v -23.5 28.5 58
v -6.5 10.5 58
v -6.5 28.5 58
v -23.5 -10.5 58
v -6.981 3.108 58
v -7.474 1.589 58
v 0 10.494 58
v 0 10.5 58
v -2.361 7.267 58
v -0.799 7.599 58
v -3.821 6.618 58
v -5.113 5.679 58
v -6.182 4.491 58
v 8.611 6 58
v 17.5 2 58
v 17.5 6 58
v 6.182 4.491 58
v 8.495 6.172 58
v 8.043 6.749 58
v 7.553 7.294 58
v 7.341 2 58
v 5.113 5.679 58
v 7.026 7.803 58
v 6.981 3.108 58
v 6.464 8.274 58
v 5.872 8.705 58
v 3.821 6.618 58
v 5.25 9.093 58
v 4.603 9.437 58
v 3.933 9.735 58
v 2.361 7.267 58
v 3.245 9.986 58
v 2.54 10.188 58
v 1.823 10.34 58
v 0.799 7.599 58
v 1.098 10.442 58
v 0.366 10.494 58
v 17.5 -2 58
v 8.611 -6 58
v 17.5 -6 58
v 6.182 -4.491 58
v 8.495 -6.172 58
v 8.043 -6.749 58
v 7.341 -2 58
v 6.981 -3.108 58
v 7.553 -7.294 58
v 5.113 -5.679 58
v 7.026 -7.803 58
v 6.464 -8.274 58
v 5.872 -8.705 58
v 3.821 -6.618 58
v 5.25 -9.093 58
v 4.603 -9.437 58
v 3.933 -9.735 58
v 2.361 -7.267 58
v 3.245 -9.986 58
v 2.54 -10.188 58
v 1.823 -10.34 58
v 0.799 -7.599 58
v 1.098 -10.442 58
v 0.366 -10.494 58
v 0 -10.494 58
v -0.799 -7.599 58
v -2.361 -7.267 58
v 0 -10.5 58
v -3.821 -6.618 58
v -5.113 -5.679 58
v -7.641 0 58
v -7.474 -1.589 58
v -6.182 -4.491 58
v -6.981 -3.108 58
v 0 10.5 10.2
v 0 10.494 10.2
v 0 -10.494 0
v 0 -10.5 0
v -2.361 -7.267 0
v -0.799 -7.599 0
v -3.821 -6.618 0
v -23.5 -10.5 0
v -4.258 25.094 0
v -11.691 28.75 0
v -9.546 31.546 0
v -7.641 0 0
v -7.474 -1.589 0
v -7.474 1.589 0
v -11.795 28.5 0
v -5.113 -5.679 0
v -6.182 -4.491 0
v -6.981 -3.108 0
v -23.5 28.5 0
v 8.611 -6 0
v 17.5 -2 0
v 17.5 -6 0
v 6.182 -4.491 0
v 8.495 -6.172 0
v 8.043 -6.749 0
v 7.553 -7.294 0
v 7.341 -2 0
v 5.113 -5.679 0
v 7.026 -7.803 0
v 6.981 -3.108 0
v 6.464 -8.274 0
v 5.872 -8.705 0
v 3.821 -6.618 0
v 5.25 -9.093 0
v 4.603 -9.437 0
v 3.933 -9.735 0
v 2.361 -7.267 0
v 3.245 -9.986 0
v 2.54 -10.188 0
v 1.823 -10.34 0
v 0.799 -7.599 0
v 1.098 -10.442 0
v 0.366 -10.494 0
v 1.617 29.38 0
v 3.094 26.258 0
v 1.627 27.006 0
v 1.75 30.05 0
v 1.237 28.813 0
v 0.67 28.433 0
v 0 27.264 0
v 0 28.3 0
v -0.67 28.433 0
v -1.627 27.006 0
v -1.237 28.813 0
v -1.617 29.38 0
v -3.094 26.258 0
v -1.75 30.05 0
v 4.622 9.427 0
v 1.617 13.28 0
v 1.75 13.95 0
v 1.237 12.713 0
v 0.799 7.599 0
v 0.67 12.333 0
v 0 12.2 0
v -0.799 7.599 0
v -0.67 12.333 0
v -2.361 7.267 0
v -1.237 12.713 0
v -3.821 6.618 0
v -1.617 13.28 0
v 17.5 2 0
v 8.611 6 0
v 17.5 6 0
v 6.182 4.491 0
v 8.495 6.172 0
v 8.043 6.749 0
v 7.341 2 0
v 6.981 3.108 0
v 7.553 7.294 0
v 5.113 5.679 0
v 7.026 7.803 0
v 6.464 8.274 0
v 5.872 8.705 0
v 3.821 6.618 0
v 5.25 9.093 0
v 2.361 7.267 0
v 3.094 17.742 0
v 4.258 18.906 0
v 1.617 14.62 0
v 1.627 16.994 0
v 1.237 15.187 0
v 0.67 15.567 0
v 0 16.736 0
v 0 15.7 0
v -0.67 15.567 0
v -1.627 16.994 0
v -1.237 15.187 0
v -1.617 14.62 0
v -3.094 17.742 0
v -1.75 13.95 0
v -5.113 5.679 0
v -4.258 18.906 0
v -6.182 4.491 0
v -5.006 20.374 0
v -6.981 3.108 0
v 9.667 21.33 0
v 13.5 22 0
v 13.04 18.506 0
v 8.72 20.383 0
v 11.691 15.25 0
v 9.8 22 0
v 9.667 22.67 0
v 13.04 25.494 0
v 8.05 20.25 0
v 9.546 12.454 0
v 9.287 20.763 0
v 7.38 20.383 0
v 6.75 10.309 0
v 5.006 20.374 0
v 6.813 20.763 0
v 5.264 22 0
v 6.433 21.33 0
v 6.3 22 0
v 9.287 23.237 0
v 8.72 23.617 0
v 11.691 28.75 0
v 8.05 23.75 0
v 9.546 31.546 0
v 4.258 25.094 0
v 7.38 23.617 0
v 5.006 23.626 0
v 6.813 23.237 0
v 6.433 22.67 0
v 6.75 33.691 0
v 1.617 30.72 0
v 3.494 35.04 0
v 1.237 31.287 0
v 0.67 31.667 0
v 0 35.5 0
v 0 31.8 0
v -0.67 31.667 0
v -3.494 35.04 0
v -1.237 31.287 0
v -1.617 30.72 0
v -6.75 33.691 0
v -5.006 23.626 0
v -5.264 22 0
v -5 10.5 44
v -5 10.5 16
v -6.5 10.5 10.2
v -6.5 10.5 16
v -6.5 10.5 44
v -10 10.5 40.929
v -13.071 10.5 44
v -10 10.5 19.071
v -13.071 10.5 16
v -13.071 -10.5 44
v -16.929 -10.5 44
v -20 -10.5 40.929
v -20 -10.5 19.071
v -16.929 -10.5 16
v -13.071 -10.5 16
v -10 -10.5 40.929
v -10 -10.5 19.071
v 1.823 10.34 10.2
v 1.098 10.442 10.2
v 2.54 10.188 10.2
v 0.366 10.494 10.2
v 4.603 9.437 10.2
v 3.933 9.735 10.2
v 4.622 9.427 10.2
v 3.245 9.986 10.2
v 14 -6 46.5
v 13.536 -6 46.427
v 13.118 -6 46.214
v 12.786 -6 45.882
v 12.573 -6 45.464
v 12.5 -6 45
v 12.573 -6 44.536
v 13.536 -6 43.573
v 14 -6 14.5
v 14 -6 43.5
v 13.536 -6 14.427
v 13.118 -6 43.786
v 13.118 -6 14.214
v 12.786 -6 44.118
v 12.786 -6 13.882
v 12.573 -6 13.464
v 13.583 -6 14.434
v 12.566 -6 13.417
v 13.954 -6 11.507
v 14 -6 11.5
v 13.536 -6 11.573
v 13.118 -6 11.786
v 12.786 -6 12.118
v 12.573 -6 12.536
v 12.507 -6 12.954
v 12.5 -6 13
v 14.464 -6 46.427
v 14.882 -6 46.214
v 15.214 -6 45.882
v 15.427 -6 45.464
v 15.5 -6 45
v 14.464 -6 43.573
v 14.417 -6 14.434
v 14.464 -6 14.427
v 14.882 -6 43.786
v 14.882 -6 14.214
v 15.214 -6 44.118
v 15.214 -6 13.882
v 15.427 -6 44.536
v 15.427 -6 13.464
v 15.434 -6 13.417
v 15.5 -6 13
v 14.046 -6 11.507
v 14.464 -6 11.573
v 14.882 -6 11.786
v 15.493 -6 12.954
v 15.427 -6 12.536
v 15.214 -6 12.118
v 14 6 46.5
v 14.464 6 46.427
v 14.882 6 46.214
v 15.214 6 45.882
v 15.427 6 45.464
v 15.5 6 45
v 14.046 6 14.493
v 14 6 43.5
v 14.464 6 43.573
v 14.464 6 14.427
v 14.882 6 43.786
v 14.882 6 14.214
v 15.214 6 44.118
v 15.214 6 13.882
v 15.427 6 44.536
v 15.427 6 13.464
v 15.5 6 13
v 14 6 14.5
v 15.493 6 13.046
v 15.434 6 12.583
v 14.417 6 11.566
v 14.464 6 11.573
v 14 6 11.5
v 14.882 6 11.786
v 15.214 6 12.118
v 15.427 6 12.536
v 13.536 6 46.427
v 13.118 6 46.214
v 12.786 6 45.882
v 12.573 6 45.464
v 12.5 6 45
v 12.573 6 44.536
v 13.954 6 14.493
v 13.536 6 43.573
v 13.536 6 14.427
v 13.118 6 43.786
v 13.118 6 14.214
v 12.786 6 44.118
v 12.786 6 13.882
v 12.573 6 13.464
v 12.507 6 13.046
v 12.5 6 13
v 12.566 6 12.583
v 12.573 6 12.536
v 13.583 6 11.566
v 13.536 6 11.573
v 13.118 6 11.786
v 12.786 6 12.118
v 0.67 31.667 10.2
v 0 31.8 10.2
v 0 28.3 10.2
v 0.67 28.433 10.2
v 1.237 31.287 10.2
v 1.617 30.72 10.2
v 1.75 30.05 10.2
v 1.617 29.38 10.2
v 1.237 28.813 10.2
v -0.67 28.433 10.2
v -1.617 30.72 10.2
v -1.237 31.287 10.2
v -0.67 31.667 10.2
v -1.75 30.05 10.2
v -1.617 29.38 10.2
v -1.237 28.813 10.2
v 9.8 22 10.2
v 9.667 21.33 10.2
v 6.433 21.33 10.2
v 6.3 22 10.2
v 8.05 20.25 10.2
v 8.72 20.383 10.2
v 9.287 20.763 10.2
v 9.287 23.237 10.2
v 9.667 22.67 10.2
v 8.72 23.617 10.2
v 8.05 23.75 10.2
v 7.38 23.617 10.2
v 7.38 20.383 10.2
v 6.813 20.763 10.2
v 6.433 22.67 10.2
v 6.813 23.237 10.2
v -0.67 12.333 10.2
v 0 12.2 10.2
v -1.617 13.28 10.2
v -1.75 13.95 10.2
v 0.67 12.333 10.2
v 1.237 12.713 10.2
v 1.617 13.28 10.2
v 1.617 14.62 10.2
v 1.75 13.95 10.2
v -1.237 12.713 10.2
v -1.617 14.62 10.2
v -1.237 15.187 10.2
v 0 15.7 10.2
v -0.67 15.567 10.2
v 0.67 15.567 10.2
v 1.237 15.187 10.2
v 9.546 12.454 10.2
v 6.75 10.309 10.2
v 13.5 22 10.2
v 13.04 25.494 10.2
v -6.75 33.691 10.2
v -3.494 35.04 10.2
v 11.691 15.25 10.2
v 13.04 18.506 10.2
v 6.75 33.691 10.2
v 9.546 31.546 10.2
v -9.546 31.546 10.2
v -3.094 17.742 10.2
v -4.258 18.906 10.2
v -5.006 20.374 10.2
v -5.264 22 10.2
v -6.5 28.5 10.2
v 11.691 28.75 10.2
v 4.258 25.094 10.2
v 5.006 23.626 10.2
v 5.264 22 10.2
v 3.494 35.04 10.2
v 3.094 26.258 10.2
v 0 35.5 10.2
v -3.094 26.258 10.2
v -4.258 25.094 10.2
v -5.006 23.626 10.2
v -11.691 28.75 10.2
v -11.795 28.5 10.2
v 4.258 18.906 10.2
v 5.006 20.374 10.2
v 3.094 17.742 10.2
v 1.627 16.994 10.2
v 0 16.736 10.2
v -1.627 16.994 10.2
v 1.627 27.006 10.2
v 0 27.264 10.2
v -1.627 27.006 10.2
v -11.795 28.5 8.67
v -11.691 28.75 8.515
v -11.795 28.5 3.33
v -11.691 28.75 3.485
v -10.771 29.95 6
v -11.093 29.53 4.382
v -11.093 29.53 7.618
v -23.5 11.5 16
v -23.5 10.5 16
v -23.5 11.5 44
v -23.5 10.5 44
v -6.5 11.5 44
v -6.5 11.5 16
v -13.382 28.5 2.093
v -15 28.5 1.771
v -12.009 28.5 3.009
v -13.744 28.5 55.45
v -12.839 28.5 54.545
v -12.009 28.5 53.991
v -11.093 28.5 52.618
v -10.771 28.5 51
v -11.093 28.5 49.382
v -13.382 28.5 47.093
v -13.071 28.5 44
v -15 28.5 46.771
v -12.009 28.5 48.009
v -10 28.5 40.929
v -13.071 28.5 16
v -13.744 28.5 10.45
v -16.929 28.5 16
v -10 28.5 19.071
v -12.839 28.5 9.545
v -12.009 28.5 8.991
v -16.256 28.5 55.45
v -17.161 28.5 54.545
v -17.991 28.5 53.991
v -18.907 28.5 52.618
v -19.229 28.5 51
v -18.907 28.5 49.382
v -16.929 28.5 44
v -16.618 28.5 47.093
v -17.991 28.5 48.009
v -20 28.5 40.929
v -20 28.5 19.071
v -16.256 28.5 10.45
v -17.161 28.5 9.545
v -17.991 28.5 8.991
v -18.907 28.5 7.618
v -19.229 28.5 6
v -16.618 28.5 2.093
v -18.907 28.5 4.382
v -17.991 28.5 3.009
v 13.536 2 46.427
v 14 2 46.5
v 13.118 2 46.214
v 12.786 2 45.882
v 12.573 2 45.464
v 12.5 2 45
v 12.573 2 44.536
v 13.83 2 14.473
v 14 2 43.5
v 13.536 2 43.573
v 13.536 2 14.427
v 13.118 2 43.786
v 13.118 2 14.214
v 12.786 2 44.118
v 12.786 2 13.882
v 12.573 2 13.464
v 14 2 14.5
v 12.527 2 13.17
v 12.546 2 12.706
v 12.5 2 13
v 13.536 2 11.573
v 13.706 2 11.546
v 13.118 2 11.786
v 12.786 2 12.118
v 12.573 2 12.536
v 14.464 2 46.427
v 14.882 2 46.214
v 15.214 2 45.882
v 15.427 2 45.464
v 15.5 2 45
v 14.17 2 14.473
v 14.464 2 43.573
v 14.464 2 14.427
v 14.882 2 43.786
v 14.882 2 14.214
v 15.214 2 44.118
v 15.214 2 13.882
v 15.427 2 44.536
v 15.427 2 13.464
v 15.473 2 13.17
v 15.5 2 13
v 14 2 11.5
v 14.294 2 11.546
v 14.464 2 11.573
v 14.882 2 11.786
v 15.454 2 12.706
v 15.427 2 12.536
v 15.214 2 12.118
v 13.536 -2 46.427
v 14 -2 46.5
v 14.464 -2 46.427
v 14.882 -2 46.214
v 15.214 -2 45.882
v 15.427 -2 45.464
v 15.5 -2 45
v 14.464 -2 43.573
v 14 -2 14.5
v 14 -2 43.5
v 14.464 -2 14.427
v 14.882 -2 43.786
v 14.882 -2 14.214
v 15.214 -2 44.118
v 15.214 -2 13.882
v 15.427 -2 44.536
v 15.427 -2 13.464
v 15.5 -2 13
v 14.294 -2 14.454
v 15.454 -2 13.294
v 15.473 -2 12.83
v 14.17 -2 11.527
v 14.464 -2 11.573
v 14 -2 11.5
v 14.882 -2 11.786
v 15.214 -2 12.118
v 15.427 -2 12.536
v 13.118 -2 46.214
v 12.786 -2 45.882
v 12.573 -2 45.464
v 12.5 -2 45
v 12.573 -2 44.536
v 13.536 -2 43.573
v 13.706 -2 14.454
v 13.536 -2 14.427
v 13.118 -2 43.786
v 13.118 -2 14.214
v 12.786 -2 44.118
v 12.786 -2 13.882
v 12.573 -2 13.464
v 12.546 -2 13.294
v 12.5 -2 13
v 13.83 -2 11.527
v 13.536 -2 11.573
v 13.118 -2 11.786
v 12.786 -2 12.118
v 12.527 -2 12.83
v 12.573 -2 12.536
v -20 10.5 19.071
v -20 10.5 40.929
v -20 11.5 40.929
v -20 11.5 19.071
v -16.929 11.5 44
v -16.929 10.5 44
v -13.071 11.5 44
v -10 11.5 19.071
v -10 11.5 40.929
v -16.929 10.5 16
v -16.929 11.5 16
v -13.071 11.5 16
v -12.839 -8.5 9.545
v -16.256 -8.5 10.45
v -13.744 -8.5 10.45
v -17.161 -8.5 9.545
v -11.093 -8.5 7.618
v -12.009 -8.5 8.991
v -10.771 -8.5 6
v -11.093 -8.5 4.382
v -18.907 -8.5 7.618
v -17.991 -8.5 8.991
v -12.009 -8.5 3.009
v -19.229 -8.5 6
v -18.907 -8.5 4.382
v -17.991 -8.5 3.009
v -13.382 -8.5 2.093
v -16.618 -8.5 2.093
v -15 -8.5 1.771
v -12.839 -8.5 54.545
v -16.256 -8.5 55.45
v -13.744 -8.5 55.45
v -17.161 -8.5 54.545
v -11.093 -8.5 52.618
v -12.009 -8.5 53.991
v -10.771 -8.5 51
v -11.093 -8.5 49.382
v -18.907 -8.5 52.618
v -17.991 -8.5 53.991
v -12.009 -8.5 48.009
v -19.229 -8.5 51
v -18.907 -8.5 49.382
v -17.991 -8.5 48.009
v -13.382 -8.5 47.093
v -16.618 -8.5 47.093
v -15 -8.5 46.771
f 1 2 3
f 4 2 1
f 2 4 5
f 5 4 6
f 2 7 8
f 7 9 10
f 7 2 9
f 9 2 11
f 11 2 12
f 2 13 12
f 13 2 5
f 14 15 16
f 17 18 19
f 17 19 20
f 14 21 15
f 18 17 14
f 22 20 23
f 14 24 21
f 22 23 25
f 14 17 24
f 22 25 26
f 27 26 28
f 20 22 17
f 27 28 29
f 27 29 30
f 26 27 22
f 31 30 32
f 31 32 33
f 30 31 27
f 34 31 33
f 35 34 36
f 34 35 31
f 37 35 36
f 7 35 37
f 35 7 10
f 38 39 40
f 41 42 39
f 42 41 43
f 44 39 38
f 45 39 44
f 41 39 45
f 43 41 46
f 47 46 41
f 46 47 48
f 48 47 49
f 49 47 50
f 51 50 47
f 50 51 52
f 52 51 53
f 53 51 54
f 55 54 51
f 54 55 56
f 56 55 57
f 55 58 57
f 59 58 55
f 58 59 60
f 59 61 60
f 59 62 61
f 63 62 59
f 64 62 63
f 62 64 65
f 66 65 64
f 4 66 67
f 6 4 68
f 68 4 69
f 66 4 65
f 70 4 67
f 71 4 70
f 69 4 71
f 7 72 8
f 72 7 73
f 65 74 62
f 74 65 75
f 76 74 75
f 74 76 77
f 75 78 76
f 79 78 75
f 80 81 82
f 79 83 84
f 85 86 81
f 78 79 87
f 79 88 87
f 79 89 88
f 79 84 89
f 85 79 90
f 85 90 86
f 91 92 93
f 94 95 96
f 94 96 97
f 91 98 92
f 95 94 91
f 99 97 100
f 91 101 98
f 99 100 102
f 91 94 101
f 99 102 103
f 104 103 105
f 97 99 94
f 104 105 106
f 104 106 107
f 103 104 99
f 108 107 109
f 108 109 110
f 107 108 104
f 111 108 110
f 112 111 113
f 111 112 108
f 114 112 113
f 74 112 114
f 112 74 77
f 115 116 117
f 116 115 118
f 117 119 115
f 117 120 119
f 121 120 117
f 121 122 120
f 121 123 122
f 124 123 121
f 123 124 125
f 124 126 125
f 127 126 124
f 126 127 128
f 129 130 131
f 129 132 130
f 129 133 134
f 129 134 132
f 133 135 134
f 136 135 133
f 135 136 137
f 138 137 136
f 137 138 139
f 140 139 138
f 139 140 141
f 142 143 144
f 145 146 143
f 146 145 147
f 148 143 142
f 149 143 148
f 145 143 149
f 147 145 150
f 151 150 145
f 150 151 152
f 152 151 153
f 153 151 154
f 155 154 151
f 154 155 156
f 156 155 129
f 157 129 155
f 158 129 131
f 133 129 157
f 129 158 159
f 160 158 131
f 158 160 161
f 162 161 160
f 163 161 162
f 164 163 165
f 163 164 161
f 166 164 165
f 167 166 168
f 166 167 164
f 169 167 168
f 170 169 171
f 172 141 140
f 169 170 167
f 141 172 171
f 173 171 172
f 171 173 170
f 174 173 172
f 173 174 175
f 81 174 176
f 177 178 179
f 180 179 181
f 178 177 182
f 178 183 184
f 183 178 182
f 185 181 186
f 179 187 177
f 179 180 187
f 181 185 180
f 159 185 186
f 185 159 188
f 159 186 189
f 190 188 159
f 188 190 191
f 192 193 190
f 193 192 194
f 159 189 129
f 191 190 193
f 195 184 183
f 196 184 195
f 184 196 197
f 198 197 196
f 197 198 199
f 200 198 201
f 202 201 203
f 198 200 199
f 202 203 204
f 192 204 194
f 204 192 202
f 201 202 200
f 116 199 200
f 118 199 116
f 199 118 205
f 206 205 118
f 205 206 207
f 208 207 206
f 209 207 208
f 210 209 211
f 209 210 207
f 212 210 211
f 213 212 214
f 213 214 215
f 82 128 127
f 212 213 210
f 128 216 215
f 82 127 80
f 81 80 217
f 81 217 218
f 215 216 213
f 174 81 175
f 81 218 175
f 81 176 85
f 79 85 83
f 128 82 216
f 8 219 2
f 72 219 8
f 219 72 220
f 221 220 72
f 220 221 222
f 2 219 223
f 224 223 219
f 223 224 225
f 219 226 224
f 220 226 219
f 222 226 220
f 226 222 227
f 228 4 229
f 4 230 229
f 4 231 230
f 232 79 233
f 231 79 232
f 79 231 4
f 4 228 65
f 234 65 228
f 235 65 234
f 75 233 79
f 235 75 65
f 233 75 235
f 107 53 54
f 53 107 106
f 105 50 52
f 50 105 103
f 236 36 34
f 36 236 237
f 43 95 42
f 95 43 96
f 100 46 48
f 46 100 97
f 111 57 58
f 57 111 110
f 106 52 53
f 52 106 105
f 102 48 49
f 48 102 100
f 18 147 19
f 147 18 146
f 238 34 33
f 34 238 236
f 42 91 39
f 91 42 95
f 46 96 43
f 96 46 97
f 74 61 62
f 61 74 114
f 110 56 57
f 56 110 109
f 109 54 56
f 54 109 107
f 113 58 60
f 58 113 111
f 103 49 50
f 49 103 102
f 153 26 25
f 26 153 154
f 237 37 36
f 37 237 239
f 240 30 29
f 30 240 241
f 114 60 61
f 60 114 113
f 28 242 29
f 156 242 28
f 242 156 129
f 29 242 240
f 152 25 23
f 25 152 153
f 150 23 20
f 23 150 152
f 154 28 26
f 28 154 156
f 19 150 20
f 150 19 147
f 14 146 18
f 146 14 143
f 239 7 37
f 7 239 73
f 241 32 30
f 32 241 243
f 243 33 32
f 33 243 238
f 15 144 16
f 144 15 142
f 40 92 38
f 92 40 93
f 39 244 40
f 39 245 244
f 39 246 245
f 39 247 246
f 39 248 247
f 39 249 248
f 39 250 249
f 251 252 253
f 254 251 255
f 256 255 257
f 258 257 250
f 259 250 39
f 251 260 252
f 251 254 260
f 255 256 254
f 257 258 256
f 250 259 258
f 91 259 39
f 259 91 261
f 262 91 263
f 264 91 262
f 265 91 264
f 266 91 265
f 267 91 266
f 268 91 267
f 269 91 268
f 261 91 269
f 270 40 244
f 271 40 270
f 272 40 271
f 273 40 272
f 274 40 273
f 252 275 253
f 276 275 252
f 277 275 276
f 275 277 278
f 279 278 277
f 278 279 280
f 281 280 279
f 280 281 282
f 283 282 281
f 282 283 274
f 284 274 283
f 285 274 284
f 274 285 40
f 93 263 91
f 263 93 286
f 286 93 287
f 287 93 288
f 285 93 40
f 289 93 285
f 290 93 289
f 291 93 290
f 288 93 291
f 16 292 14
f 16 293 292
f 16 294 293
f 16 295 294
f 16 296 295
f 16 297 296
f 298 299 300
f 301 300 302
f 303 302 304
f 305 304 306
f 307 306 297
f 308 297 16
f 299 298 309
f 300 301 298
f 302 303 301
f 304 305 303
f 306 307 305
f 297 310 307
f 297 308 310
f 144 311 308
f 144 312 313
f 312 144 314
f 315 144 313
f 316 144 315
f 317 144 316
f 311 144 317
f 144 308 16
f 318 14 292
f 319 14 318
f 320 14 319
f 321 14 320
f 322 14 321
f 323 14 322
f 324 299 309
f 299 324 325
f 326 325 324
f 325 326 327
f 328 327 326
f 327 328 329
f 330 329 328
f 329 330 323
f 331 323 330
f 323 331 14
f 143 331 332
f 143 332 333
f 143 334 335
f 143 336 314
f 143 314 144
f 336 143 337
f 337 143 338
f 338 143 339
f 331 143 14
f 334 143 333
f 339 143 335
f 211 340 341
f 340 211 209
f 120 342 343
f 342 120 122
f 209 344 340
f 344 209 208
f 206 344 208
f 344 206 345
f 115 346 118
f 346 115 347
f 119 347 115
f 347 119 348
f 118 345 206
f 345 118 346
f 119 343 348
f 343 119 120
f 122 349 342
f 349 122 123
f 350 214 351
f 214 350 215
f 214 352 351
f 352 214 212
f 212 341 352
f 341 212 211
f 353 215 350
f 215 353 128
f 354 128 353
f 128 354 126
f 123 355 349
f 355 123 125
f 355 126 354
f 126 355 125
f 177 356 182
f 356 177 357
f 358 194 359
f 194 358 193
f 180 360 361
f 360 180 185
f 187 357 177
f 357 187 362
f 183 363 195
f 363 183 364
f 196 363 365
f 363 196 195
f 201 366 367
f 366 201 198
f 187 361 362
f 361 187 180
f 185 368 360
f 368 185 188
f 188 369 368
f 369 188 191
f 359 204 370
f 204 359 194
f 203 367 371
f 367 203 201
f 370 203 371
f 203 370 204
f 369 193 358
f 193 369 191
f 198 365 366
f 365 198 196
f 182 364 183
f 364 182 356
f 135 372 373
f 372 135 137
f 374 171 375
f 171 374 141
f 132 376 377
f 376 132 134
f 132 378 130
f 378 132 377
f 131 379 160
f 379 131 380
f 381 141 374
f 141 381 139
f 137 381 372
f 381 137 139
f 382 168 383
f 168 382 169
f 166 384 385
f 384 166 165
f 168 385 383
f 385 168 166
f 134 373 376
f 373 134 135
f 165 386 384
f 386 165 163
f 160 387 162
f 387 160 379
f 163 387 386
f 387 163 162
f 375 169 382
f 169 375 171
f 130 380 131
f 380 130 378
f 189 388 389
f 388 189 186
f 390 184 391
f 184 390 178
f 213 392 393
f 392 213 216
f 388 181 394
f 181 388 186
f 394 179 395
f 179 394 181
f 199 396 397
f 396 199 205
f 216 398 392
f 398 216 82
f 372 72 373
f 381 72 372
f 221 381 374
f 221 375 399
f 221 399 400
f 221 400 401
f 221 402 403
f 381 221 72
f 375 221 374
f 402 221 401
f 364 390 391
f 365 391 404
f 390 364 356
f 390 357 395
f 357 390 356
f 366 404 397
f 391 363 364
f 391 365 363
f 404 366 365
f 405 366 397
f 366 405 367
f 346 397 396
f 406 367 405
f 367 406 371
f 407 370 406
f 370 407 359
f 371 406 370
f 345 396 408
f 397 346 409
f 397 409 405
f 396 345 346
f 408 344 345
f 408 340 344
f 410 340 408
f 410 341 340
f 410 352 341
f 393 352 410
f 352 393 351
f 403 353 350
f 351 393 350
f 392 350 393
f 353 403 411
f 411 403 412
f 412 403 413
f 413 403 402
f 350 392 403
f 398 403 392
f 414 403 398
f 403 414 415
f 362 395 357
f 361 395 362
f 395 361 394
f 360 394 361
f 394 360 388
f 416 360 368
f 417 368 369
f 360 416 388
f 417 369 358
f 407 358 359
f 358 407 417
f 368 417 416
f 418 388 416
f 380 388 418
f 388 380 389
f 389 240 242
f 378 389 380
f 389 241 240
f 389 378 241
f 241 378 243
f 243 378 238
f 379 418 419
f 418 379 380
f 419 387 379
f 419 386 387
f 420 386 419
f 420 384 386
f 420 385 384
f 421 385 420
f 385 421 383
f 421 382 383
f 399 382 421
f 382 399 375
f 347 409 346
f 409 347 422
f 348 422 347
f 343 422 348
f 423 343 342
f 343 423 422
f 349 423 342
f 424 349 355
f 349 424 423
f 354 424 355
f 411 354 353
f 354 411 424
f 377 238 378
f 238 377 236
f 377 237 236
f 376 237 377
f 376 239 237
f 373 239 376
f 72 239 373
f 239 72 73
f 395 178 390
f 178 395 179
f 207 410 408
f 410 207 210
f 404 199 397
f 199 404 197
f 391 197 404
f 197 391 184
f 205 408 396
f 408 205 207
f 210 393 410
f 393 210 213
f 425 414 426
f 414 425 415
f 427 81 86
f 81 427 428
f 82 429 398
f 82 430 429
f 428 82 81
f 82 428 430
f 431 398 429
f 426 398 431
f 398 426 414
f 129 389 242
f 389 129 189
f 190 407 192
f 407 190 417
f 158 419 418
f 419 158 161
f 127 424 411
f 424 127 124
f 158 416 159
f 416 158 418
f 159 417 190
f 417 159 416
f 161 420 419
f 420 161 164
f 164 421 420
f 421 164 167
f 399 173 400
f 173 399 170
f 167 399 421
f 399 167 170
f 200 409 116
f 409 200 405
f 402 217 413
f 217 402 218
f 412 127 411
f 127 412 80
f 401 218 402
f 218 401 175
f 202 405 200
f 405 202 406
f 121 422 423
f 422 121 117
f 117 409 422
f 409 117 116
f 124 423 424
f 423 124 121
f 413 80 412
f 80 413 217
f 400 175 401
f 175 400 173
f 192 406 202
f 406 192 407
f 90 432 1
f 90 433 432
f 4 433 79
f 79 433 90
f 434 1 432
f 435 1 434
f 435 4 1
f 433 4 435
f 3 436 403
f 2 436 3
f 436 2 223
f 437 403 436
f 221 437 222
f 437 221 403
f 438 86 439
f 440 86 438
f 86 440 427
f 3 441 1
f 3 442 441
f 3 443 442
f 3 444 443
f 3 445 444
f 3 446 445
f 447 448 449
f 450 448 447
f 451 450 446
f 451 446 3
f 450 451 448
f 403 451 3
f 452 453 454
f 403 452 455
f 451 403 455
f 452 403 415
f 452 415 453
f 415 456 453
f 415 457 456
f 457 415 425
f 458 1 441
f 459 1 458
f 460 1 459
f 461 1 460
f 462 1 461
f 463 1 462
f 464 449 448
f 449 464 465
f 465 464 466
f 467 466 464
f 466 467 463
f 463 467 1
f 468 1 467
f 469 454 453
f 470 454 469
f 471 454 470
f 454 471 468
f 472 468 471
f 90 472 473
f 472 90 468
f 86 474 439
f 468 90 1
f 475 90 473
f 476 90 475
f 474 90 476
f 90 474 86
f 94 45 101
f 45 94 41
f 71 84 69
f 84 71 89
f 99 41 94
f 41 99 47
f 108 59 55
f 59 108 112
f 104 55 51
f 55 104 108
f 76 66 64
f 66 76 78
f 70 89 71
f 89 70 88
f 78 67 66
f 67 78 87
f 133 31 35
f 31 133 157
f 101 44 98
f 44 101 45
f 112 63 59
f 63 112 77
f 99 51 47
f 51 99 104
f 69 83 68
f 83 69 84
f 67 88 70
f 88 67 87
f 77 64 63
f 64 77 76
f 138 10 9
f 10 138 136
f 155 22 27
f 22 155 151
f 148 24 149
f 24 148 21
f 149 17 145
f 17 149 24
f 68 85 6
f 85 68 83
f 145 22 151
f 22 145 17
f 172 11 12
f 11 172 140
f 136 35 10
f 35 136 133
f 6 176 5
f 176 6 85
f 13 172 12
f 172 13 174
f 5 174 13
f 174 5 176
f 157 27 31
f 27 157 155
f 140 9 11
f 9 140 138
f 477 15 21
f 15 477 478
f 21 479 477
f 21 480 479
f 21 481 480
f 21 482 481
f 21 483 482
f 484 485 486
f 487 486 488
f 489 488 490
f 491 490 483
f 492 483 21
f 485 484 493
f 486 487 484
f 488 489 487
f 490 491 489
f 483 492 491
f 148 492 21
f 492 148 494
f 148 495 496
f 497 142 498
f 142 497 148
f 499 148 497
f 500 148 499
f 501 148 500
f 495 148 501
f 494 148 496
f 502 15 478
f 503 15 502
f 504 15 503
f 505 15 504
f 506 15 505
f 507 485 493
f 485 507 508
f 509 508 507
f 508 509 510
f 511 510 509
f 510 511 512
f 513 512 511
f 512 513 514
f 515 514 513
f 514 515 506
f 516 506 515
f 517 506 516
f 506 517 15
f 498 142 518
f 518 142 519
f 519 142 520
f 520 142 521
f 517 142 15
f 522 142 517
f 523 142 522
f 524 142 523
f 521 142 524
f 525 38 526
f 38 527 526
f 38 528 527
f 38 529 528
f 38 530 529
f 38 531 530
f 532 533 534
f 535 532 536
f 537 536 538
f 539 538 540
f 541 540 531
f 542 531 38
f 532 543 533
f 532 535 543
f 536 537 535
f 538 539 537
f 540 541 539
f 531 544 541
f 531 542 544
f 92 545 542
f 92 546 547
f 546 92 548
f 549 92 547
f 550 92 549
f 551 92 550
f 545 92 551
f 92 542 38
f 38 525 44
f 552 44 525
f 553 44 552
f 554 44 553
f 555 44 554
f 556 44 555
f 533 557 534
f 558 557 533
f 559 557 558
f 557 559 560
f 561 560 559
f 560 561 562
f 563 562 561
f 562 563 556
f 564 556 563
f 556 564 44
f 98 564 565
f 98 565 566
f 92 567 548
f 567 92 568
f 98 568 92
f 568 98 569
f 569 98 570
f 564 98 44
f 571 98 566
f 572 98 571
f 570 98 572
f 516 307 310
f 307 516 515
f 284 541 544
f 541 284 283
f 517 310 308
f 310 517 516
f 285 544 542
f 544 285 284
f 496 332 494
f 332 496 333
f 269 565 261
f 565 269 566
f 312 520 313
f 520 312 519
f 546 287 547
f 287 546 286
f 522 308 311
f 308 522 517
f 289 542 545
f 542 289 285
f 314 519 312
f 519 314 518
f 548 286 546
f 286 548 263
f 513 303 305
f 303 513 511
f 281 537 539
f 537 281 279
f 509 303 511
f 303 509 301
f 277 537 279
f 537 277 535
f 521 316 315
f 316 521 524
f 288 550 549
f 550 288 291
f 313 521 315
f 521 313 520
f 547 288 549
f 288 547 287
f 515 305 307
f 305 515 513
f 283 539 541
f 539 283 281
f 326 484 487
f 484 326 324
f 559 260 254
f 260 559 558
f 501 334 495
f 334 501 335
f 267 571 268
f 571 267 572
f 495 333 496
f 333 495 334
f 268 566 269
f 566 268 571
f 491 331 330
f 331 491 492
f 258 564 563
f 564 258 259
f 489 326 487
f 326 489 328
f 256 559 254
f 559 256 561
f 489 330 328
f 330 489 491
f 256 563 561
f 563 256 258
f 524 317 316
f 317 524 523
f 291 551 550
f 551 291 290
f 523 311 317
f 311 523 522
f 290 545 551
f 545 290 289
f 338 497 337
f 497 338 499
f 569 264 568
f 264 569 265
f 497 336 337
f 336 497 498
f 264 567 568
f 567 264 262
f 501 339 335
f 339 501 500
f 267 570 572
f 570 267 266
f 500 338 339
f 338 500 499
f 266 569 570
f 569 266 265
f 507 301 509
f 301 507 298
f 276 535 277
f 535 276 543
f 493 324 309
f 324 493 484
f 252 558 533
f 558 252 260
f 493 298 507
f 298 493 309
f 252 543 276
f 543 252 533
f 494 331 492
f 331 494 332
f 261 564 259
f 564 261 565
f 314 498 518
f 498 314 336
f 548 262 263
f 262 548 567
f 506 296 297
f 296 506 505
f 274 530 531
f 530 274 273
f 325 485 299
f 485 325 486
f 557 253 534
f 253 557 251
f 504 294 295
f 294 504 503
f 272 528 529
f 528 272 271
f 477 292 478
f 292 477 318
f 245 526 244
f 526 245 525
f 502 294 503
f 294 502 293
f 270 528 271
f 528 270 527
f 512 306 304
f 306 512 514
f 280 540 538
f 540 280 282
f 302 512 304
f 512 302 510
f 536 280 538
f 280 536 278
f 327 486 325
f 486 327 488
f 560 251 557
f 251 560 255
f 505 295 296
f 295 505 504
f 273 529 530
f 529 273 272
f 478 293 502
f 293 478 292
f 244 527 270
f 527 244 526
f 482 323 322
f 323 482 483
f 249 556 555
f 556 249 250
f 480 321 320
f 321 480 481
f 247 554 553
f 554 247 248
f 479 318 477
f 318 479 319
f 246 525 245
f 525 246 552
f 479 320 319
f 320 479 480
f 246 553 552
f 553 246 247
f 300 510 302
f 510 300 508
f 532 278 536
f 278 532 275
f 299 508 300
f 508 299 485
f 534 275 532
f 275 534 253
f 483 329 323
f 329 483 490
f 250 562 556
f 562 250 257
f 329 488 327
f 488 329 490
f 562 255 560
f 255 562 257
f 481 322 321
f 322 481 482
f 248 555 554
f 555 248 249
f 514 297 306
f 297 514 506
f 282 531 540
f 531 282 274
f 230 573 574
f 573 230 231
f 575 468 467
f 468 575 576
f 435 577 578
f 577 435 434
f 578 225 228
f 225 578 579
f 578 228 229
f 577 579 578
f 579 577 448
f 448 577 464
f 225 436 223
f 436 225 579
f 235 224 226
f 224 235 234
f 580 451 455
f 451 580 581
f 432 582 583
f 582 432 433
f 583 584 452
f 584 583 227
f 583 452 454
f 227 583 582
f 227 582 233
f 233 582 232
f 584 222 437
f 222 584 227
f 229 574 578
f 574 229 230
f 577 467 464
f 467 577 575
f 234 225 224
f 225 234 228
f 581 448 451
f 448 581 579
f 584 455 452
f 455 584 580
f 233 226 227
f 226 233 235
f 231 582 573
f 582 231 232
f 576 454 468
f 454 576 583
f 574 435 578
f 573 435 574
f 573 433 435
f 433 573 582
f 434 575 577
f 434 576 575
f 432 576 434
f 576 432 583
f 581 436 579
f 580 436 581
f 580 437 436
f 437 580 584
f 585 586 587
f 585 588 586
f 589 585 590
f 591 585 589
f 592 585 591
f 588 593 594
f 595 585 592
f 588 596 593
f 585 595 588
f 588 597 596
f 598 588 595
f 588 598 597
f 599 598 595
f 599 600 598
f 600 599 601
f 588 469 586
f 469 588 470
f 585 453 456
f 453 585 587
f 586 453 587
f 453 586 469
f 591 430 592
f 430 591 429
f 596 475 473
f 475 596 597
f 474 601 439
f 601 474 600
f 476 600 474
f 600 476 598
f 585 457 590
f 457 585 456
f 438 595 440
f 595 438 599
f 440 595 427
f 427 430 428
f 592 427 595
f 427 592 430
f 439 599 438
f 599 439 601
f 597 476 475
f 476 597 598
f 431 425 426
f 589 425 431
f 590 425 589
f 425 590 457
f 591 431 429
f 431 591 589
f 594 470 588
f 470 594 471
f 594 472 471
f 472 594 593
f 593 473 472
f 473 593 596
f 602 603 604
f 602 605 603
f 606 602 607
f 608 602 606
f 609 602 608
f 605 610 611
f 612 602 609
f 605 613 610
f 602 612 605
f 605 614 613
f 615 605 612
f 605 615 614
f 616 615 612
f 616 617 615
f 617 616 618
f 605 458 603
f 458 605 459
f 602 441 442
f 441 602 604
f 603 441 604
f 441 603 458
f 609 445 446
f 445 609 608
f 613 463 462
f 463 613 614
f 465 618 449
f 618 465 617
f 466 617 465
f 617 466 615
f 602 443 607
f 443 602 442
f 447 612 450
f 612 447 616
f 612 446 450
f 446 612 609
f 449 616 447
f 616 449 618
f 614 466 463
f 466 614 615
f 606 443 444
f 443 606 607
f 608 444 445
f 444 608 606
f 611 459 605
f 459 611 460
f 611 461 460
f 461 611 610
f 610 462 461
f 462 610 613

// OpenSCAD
// file: polyholes.scad
//
// Mendel90
//
// GNU GPL v2
// nop.head@gmail.com
// hydraraptor.blogspot.com
//
// See http://hydraraptor.blogspot.com/2011/02/polyholes.html
//
function sides(r)=max(round(4 *r),3);
function correctedRadius(r,n)=0.1 + r / cos(180 / n);
function correctedDiameter(d)=0.2 + d / cos(180 / sides(d / 2));

module polyCircle(r, center=false) {
    n=sides(r);
    circle(r=correctedRadius(r,n), $fn=n, center=center);
}

module poly_circle(r, center=false) {
	polyCircle(r, center);
}

module polyCylinder(r, h, center=false) {
    n=sides(r);
    cylinder(h=h, r=correctedRadius(r,n), $fn=n, center=center);
}

module poly_cylinder(r, h, center=false) {
	polyCylinder(r,h,center);
}

module polydCylinder(r, center=false) {
    n=sides(r);
    r=correctedRadius(r,n);
    cylinder(h=h, r=r, $fn=n, center=center);
    translate([0, -r, 0])
        cube([r, 2 * r, h]);
}

module poly_d_cylinder(r, center=false) {
	polydCylinder(r,center);
}
// file: bearing.scad
// PRUSA iteration3
// Bearing holders
// GNU GPL v3
// Josef Průša <iam@josefprusa.cz> and contributors
// http://www.reprap.org/wiki/Prusa_Mendel
// http://prusamendel.org

use <polyholes.scad>

bearing_diameter = 15;

module horizontal_bearing_base(bearings=1){
 translate(v=[0,0,6]) cube(size = [24,8+bearings*25,12], center = true);	
}
module horizontal_bearing_holes(bearings=1){
 cutter_lenght = 10+bearings*25;
 one_holder_lenght = 8+25;
 holder_lenght = 8+bearings*25;
 
 // Main bearing cut
 difference(){
  translate(v=[0,0,12]) rotate(a=[90,0,0]) translate(v=[0,0,-cutter_lenght/2]) cylinder(h = cutter_lenght, r=bearing_diameter/2, $fn=50);
  // Bearing retainers
  translate(v=[0,1-holder_lenght/2,3]) cube(size = [24,6,8], center = true);
  translate(v=[0,-1+holder_lenght/2,3]) cube(size = [24,6,8], center = true);
 }
 
 // Ziptie cutouts
 ziptie_cut_ofset = 0;
 for ( i = [0 : bearings-1] ){
  // For easier positioning I move them by half of one 
  // bearing holder then add each bearign lenght and then center again
  translate(v=[0,-holder_lenght/2,0]) translate(v=[0,one_holder_lenght/2+i*25,0]) difference(){
   union(){
    translate(v=[0,2-6,12]) rotate(a=[90,0,0]) translate(v=[0,0,0]) cylinder(h = 4, r=12.5, $fn=50);
    translate(v=[0,2+6,12]) rotate(a=[90,0,0]) translate(v=[0,0,0]) cylinder(h = 4, r=12.5, $fn=50);
   }
   translate(v=[0,10,12]) rotate(a=[90,0,0]) translate(v=[0,0,0]) cylinder(h = 24, r=10, $fn=50);
  }
 }
 
}

module horizontal_bearing_test(){
 difference(){
  horizontal_bearing_base(1);
  horizontal_bearing_holes(1);
 }
 translate(v=[30,0,0]) difference(){
  horizontal_bearing_base(2);
  horizontal_bearing_holes(2);
 }
 translate(v=[60,0,0]) difference(){
  horizontal_bearing_base(3);
  horizontal_bearing_holes(3);
 }
}



thinwall = 3;
bearing_size = bearing_diameter + 2 * thinwall;

module vertical_bearing_base(){
 translate(v=[-2-bearing_size/4,0,29]) cube(size = [4+bearing_size/2,bearing_size,58], center = true);
 cylinder(h = 58, r=bearing_size/2, $fn = 90);
 translate(v=[(bearing_size/2)+2,0,29]) cube([10,12,58], center=true);
}

module vertical_bearing_holes(){
  height = 58;
  translate(v=[0,0,-1]) poly_cylinder(h = height+2, r=bearing_diameter/2);
  // translate(v=[0,0,24]) poly_cylinder(h = height-(24*2), r=bearing_diameter/2);
  translate(v=[bearing_diameter/2-1,-4/2,-1]) cube(size = [(thinwall*2)+8,4,62]);
  rotate([90,0,0]) translate([14,13,0]) cylinder(d=3, h=15, center=true, $fn = 20);
  rotate([90,0,0]) translate([14,height-13,0]) cylinder(d=3, h=15, center=true, $fn = 20);
}

difference(){
  vertical_bearing_base();
  vertical_bearing_holes();
}
// file: x-end-idler-tensioner.scad
module round_box(size=[1,1,1], d=0.1, center=false)
{
    minkowski() {
        cube(size-[d,d,0], center=center);
        cylinder(d=d, h=0.01, center=center, $fn=24);
    }
}

module bearing_624()
{
    difference() {
        cylinder(d=13, h=5, center=true, $fn=48);
        cylinder(d=4, h=5.1, center=true, $fn=24);
    }
}

module tensioner_arm(length)
{
    translate([length/2,0,10/2]) rotate([0,0,90]) {
        difference() {
            union() {
                for (i=[0,1]) mirror([i,0,0]) {
                    translate([3.85,length-5,0]) rotate([0,90,0]) cylinder(d=10, h=2, center=true);
                    translate([3.85-0.8,length-5,0]) rotate([0,90,0]) cylinder(d1=5, d2=10, h=1, center=true);
                    translate([3.85,(length-5)/2,0]) cube([2,length-5,10], center=true);
                }

                translate([0,8/2,8.8/2]) cube([9.7,8,10+8.8], center=true);
                translate([0,length-20+(3/2),0]) cube([8,3,10], center=true);
            }

            #for (i=[0,1]) translate([0,10,i*8]) rotate([90,0,0]) cylinder(d=3.2, h=20, $fn=10);
            translate([0,length-5,0]) rotate([0,90,0]) cylinder(d=3.3, h=15, center=true, $fn=10);
            translate([0,4,-5/2]) cube([5.5, 2, 5+5.5], center=true);
            for (i=[0,1]) mirror([i,0,0]) translate([9.7/2,4,27.7/2]) rotate([0,45,0]) cube([6,10,4.2], center=true);
        }

        // Show where the 624 bearing goes
        translate([0,length-5,0]) rotate([0,90,0]) {
            % bearing_624();
        }
    }
}

module tensioner_plate()
{
    difference() {
        union() {
            translate([0,0,2/2]) round_box([27.7, 5+3, 2]+[4,6,0], d=5, center=true);
            translate([0,0,(3/2)+1]) difference() {
                cube([27.7, 9.7, 3], center=true);
                for (i=[0,1]) mirror([0,i,0]) for (j=[0,1]) mirror([j,0,0]) translate([27.7/2,9.7/2,0]) rotate([0,0,45]) cube([4.2,10,5], center=true);
            }
        }
        # for(i=[0,-1]) translate([i*8,0,-3]) rotate([0,0,90]) cylinder(d=3.2, h=10, $fn=10);
    }
}

translate([0,-10,0]) tensioner_arm(length=50);
translate([0,10,0]) tensioner_plate();
// file: x-end.scad
// PRUSA iteration3
// X end prototype
// GNU GPL v3
// Josef Průša <iam@josefprusa.cz> and contributors
// http://www.reprap.org/wiki/Prusa_Mendel
// http://prusamendel.org

use <bearing.scad>
use <polyholes.scad>
rod_distance=45;

module x_end_base()
{
    // Main block
    height=58;
    translate([-15,-9,height/2]) cube([17,39,height], center=true);

    // Bearing holder
    vertical_bearing_base();

    // Nut trap
    translate([0, -17-5, 0]) {
        difference() {
            // Hexagon
            cylinder(h=10.2, d=27, $fn=24);
            // Nut trap
            translate([0, 0, -0.5]) poly_cylinder(h=16, r=5.1, $fn=25);
            for (a=[0:90:269]) {
                rotate([0,0,a-90]) translate([(22/2)-(3.5/2)-1.2,0,-6]) cylinder(d=3.5, h=20, $fn=16);
            }
        }
    }
}

module x_end_holes()
{
    vertical_bearing_holes();

    // Belt hole
    translate([-1,0,0]) {

        // Stress relief
        translate([-5.5-10+1.5, -10-1, 30]) cube([20,1,28], center=true);
        difference() {
            translate([-5.5-10+1.5, -10, 30]) cube([10,46,28], center=true);

            // Nice edges
            translate([-5.5-10+1.5, -10, 30+23]) rotate([0, +45, 0]) cube([10, 46, 28], center=true);
            translate([-5.5-10+1.5, -10, 30+23]) rotate([0, -45, 0]) cube([10, 46, 28], center=true);
            translate([-5.5-10+1.5, -10, 30-23]) rotate([0, +45, 0]) cube([10, 46, 28], center=true);
            translate([-5.5-10+1.5, -10, 30-23]) rotate([0, -45, 0]) cube([10, 46, 28], center=true);
        }
    }

    // Bottom pushfit rod
    translate([-15, -41.5, 6]) rotate(a=[-90, 0, 0]) pushfit_rod(8.1, 50);

    // Top pushfit rod
    translate([-15, -41.5, rod_distance+6]) rotate(a=[-90, 0, 0]) pushfit_rod(8.1, 50);
}

module pushfit_rod(diameter,length)
{
    poly_cylinder(h=length, r=diameter/2);
    difference() {
        translate([0, -diameter/2.85, length/2]) rotate([0,0,45]) cube([diameter/2, diameter/2, length], center=true);
        translate([0, -diameter/4-diameter/2-0.4, length/2]) rotate([0,0,0]) cube([diameter, diameter/2, length], center=true);
    }
    // translate([0,-diameter/2-2,length/2]) cube([diameter,1,length], center=true);
}

// Final prototype
module x_end_plain()
{
    difference() {
        x_end_base();
        x_end_holes();
    }
}

x_end_plain();
// main file
// PRUSA iteration3
// X end idler
// GNU GPL v3
// Josef Průša <iam@josefprusa.cz> and contributors
// http://www.reprap.org/wiki/Prusa_Mendel
// http://prusamendel.org

use <x-end.scad>

module x_end_idler()
{
    mirror([0,1,0]) difference(){
        x_end_base();
        x_end_holes();
    }
}

x_end_idler();

use <x-end-idler-tensioner.scad>
% translate([-15,-12.7,30]) rotate([0,90,90]) tensioner_plate();
% translate([-15,20,25]) rotate([0,0,-90]) tensioner_arm(length=50);
